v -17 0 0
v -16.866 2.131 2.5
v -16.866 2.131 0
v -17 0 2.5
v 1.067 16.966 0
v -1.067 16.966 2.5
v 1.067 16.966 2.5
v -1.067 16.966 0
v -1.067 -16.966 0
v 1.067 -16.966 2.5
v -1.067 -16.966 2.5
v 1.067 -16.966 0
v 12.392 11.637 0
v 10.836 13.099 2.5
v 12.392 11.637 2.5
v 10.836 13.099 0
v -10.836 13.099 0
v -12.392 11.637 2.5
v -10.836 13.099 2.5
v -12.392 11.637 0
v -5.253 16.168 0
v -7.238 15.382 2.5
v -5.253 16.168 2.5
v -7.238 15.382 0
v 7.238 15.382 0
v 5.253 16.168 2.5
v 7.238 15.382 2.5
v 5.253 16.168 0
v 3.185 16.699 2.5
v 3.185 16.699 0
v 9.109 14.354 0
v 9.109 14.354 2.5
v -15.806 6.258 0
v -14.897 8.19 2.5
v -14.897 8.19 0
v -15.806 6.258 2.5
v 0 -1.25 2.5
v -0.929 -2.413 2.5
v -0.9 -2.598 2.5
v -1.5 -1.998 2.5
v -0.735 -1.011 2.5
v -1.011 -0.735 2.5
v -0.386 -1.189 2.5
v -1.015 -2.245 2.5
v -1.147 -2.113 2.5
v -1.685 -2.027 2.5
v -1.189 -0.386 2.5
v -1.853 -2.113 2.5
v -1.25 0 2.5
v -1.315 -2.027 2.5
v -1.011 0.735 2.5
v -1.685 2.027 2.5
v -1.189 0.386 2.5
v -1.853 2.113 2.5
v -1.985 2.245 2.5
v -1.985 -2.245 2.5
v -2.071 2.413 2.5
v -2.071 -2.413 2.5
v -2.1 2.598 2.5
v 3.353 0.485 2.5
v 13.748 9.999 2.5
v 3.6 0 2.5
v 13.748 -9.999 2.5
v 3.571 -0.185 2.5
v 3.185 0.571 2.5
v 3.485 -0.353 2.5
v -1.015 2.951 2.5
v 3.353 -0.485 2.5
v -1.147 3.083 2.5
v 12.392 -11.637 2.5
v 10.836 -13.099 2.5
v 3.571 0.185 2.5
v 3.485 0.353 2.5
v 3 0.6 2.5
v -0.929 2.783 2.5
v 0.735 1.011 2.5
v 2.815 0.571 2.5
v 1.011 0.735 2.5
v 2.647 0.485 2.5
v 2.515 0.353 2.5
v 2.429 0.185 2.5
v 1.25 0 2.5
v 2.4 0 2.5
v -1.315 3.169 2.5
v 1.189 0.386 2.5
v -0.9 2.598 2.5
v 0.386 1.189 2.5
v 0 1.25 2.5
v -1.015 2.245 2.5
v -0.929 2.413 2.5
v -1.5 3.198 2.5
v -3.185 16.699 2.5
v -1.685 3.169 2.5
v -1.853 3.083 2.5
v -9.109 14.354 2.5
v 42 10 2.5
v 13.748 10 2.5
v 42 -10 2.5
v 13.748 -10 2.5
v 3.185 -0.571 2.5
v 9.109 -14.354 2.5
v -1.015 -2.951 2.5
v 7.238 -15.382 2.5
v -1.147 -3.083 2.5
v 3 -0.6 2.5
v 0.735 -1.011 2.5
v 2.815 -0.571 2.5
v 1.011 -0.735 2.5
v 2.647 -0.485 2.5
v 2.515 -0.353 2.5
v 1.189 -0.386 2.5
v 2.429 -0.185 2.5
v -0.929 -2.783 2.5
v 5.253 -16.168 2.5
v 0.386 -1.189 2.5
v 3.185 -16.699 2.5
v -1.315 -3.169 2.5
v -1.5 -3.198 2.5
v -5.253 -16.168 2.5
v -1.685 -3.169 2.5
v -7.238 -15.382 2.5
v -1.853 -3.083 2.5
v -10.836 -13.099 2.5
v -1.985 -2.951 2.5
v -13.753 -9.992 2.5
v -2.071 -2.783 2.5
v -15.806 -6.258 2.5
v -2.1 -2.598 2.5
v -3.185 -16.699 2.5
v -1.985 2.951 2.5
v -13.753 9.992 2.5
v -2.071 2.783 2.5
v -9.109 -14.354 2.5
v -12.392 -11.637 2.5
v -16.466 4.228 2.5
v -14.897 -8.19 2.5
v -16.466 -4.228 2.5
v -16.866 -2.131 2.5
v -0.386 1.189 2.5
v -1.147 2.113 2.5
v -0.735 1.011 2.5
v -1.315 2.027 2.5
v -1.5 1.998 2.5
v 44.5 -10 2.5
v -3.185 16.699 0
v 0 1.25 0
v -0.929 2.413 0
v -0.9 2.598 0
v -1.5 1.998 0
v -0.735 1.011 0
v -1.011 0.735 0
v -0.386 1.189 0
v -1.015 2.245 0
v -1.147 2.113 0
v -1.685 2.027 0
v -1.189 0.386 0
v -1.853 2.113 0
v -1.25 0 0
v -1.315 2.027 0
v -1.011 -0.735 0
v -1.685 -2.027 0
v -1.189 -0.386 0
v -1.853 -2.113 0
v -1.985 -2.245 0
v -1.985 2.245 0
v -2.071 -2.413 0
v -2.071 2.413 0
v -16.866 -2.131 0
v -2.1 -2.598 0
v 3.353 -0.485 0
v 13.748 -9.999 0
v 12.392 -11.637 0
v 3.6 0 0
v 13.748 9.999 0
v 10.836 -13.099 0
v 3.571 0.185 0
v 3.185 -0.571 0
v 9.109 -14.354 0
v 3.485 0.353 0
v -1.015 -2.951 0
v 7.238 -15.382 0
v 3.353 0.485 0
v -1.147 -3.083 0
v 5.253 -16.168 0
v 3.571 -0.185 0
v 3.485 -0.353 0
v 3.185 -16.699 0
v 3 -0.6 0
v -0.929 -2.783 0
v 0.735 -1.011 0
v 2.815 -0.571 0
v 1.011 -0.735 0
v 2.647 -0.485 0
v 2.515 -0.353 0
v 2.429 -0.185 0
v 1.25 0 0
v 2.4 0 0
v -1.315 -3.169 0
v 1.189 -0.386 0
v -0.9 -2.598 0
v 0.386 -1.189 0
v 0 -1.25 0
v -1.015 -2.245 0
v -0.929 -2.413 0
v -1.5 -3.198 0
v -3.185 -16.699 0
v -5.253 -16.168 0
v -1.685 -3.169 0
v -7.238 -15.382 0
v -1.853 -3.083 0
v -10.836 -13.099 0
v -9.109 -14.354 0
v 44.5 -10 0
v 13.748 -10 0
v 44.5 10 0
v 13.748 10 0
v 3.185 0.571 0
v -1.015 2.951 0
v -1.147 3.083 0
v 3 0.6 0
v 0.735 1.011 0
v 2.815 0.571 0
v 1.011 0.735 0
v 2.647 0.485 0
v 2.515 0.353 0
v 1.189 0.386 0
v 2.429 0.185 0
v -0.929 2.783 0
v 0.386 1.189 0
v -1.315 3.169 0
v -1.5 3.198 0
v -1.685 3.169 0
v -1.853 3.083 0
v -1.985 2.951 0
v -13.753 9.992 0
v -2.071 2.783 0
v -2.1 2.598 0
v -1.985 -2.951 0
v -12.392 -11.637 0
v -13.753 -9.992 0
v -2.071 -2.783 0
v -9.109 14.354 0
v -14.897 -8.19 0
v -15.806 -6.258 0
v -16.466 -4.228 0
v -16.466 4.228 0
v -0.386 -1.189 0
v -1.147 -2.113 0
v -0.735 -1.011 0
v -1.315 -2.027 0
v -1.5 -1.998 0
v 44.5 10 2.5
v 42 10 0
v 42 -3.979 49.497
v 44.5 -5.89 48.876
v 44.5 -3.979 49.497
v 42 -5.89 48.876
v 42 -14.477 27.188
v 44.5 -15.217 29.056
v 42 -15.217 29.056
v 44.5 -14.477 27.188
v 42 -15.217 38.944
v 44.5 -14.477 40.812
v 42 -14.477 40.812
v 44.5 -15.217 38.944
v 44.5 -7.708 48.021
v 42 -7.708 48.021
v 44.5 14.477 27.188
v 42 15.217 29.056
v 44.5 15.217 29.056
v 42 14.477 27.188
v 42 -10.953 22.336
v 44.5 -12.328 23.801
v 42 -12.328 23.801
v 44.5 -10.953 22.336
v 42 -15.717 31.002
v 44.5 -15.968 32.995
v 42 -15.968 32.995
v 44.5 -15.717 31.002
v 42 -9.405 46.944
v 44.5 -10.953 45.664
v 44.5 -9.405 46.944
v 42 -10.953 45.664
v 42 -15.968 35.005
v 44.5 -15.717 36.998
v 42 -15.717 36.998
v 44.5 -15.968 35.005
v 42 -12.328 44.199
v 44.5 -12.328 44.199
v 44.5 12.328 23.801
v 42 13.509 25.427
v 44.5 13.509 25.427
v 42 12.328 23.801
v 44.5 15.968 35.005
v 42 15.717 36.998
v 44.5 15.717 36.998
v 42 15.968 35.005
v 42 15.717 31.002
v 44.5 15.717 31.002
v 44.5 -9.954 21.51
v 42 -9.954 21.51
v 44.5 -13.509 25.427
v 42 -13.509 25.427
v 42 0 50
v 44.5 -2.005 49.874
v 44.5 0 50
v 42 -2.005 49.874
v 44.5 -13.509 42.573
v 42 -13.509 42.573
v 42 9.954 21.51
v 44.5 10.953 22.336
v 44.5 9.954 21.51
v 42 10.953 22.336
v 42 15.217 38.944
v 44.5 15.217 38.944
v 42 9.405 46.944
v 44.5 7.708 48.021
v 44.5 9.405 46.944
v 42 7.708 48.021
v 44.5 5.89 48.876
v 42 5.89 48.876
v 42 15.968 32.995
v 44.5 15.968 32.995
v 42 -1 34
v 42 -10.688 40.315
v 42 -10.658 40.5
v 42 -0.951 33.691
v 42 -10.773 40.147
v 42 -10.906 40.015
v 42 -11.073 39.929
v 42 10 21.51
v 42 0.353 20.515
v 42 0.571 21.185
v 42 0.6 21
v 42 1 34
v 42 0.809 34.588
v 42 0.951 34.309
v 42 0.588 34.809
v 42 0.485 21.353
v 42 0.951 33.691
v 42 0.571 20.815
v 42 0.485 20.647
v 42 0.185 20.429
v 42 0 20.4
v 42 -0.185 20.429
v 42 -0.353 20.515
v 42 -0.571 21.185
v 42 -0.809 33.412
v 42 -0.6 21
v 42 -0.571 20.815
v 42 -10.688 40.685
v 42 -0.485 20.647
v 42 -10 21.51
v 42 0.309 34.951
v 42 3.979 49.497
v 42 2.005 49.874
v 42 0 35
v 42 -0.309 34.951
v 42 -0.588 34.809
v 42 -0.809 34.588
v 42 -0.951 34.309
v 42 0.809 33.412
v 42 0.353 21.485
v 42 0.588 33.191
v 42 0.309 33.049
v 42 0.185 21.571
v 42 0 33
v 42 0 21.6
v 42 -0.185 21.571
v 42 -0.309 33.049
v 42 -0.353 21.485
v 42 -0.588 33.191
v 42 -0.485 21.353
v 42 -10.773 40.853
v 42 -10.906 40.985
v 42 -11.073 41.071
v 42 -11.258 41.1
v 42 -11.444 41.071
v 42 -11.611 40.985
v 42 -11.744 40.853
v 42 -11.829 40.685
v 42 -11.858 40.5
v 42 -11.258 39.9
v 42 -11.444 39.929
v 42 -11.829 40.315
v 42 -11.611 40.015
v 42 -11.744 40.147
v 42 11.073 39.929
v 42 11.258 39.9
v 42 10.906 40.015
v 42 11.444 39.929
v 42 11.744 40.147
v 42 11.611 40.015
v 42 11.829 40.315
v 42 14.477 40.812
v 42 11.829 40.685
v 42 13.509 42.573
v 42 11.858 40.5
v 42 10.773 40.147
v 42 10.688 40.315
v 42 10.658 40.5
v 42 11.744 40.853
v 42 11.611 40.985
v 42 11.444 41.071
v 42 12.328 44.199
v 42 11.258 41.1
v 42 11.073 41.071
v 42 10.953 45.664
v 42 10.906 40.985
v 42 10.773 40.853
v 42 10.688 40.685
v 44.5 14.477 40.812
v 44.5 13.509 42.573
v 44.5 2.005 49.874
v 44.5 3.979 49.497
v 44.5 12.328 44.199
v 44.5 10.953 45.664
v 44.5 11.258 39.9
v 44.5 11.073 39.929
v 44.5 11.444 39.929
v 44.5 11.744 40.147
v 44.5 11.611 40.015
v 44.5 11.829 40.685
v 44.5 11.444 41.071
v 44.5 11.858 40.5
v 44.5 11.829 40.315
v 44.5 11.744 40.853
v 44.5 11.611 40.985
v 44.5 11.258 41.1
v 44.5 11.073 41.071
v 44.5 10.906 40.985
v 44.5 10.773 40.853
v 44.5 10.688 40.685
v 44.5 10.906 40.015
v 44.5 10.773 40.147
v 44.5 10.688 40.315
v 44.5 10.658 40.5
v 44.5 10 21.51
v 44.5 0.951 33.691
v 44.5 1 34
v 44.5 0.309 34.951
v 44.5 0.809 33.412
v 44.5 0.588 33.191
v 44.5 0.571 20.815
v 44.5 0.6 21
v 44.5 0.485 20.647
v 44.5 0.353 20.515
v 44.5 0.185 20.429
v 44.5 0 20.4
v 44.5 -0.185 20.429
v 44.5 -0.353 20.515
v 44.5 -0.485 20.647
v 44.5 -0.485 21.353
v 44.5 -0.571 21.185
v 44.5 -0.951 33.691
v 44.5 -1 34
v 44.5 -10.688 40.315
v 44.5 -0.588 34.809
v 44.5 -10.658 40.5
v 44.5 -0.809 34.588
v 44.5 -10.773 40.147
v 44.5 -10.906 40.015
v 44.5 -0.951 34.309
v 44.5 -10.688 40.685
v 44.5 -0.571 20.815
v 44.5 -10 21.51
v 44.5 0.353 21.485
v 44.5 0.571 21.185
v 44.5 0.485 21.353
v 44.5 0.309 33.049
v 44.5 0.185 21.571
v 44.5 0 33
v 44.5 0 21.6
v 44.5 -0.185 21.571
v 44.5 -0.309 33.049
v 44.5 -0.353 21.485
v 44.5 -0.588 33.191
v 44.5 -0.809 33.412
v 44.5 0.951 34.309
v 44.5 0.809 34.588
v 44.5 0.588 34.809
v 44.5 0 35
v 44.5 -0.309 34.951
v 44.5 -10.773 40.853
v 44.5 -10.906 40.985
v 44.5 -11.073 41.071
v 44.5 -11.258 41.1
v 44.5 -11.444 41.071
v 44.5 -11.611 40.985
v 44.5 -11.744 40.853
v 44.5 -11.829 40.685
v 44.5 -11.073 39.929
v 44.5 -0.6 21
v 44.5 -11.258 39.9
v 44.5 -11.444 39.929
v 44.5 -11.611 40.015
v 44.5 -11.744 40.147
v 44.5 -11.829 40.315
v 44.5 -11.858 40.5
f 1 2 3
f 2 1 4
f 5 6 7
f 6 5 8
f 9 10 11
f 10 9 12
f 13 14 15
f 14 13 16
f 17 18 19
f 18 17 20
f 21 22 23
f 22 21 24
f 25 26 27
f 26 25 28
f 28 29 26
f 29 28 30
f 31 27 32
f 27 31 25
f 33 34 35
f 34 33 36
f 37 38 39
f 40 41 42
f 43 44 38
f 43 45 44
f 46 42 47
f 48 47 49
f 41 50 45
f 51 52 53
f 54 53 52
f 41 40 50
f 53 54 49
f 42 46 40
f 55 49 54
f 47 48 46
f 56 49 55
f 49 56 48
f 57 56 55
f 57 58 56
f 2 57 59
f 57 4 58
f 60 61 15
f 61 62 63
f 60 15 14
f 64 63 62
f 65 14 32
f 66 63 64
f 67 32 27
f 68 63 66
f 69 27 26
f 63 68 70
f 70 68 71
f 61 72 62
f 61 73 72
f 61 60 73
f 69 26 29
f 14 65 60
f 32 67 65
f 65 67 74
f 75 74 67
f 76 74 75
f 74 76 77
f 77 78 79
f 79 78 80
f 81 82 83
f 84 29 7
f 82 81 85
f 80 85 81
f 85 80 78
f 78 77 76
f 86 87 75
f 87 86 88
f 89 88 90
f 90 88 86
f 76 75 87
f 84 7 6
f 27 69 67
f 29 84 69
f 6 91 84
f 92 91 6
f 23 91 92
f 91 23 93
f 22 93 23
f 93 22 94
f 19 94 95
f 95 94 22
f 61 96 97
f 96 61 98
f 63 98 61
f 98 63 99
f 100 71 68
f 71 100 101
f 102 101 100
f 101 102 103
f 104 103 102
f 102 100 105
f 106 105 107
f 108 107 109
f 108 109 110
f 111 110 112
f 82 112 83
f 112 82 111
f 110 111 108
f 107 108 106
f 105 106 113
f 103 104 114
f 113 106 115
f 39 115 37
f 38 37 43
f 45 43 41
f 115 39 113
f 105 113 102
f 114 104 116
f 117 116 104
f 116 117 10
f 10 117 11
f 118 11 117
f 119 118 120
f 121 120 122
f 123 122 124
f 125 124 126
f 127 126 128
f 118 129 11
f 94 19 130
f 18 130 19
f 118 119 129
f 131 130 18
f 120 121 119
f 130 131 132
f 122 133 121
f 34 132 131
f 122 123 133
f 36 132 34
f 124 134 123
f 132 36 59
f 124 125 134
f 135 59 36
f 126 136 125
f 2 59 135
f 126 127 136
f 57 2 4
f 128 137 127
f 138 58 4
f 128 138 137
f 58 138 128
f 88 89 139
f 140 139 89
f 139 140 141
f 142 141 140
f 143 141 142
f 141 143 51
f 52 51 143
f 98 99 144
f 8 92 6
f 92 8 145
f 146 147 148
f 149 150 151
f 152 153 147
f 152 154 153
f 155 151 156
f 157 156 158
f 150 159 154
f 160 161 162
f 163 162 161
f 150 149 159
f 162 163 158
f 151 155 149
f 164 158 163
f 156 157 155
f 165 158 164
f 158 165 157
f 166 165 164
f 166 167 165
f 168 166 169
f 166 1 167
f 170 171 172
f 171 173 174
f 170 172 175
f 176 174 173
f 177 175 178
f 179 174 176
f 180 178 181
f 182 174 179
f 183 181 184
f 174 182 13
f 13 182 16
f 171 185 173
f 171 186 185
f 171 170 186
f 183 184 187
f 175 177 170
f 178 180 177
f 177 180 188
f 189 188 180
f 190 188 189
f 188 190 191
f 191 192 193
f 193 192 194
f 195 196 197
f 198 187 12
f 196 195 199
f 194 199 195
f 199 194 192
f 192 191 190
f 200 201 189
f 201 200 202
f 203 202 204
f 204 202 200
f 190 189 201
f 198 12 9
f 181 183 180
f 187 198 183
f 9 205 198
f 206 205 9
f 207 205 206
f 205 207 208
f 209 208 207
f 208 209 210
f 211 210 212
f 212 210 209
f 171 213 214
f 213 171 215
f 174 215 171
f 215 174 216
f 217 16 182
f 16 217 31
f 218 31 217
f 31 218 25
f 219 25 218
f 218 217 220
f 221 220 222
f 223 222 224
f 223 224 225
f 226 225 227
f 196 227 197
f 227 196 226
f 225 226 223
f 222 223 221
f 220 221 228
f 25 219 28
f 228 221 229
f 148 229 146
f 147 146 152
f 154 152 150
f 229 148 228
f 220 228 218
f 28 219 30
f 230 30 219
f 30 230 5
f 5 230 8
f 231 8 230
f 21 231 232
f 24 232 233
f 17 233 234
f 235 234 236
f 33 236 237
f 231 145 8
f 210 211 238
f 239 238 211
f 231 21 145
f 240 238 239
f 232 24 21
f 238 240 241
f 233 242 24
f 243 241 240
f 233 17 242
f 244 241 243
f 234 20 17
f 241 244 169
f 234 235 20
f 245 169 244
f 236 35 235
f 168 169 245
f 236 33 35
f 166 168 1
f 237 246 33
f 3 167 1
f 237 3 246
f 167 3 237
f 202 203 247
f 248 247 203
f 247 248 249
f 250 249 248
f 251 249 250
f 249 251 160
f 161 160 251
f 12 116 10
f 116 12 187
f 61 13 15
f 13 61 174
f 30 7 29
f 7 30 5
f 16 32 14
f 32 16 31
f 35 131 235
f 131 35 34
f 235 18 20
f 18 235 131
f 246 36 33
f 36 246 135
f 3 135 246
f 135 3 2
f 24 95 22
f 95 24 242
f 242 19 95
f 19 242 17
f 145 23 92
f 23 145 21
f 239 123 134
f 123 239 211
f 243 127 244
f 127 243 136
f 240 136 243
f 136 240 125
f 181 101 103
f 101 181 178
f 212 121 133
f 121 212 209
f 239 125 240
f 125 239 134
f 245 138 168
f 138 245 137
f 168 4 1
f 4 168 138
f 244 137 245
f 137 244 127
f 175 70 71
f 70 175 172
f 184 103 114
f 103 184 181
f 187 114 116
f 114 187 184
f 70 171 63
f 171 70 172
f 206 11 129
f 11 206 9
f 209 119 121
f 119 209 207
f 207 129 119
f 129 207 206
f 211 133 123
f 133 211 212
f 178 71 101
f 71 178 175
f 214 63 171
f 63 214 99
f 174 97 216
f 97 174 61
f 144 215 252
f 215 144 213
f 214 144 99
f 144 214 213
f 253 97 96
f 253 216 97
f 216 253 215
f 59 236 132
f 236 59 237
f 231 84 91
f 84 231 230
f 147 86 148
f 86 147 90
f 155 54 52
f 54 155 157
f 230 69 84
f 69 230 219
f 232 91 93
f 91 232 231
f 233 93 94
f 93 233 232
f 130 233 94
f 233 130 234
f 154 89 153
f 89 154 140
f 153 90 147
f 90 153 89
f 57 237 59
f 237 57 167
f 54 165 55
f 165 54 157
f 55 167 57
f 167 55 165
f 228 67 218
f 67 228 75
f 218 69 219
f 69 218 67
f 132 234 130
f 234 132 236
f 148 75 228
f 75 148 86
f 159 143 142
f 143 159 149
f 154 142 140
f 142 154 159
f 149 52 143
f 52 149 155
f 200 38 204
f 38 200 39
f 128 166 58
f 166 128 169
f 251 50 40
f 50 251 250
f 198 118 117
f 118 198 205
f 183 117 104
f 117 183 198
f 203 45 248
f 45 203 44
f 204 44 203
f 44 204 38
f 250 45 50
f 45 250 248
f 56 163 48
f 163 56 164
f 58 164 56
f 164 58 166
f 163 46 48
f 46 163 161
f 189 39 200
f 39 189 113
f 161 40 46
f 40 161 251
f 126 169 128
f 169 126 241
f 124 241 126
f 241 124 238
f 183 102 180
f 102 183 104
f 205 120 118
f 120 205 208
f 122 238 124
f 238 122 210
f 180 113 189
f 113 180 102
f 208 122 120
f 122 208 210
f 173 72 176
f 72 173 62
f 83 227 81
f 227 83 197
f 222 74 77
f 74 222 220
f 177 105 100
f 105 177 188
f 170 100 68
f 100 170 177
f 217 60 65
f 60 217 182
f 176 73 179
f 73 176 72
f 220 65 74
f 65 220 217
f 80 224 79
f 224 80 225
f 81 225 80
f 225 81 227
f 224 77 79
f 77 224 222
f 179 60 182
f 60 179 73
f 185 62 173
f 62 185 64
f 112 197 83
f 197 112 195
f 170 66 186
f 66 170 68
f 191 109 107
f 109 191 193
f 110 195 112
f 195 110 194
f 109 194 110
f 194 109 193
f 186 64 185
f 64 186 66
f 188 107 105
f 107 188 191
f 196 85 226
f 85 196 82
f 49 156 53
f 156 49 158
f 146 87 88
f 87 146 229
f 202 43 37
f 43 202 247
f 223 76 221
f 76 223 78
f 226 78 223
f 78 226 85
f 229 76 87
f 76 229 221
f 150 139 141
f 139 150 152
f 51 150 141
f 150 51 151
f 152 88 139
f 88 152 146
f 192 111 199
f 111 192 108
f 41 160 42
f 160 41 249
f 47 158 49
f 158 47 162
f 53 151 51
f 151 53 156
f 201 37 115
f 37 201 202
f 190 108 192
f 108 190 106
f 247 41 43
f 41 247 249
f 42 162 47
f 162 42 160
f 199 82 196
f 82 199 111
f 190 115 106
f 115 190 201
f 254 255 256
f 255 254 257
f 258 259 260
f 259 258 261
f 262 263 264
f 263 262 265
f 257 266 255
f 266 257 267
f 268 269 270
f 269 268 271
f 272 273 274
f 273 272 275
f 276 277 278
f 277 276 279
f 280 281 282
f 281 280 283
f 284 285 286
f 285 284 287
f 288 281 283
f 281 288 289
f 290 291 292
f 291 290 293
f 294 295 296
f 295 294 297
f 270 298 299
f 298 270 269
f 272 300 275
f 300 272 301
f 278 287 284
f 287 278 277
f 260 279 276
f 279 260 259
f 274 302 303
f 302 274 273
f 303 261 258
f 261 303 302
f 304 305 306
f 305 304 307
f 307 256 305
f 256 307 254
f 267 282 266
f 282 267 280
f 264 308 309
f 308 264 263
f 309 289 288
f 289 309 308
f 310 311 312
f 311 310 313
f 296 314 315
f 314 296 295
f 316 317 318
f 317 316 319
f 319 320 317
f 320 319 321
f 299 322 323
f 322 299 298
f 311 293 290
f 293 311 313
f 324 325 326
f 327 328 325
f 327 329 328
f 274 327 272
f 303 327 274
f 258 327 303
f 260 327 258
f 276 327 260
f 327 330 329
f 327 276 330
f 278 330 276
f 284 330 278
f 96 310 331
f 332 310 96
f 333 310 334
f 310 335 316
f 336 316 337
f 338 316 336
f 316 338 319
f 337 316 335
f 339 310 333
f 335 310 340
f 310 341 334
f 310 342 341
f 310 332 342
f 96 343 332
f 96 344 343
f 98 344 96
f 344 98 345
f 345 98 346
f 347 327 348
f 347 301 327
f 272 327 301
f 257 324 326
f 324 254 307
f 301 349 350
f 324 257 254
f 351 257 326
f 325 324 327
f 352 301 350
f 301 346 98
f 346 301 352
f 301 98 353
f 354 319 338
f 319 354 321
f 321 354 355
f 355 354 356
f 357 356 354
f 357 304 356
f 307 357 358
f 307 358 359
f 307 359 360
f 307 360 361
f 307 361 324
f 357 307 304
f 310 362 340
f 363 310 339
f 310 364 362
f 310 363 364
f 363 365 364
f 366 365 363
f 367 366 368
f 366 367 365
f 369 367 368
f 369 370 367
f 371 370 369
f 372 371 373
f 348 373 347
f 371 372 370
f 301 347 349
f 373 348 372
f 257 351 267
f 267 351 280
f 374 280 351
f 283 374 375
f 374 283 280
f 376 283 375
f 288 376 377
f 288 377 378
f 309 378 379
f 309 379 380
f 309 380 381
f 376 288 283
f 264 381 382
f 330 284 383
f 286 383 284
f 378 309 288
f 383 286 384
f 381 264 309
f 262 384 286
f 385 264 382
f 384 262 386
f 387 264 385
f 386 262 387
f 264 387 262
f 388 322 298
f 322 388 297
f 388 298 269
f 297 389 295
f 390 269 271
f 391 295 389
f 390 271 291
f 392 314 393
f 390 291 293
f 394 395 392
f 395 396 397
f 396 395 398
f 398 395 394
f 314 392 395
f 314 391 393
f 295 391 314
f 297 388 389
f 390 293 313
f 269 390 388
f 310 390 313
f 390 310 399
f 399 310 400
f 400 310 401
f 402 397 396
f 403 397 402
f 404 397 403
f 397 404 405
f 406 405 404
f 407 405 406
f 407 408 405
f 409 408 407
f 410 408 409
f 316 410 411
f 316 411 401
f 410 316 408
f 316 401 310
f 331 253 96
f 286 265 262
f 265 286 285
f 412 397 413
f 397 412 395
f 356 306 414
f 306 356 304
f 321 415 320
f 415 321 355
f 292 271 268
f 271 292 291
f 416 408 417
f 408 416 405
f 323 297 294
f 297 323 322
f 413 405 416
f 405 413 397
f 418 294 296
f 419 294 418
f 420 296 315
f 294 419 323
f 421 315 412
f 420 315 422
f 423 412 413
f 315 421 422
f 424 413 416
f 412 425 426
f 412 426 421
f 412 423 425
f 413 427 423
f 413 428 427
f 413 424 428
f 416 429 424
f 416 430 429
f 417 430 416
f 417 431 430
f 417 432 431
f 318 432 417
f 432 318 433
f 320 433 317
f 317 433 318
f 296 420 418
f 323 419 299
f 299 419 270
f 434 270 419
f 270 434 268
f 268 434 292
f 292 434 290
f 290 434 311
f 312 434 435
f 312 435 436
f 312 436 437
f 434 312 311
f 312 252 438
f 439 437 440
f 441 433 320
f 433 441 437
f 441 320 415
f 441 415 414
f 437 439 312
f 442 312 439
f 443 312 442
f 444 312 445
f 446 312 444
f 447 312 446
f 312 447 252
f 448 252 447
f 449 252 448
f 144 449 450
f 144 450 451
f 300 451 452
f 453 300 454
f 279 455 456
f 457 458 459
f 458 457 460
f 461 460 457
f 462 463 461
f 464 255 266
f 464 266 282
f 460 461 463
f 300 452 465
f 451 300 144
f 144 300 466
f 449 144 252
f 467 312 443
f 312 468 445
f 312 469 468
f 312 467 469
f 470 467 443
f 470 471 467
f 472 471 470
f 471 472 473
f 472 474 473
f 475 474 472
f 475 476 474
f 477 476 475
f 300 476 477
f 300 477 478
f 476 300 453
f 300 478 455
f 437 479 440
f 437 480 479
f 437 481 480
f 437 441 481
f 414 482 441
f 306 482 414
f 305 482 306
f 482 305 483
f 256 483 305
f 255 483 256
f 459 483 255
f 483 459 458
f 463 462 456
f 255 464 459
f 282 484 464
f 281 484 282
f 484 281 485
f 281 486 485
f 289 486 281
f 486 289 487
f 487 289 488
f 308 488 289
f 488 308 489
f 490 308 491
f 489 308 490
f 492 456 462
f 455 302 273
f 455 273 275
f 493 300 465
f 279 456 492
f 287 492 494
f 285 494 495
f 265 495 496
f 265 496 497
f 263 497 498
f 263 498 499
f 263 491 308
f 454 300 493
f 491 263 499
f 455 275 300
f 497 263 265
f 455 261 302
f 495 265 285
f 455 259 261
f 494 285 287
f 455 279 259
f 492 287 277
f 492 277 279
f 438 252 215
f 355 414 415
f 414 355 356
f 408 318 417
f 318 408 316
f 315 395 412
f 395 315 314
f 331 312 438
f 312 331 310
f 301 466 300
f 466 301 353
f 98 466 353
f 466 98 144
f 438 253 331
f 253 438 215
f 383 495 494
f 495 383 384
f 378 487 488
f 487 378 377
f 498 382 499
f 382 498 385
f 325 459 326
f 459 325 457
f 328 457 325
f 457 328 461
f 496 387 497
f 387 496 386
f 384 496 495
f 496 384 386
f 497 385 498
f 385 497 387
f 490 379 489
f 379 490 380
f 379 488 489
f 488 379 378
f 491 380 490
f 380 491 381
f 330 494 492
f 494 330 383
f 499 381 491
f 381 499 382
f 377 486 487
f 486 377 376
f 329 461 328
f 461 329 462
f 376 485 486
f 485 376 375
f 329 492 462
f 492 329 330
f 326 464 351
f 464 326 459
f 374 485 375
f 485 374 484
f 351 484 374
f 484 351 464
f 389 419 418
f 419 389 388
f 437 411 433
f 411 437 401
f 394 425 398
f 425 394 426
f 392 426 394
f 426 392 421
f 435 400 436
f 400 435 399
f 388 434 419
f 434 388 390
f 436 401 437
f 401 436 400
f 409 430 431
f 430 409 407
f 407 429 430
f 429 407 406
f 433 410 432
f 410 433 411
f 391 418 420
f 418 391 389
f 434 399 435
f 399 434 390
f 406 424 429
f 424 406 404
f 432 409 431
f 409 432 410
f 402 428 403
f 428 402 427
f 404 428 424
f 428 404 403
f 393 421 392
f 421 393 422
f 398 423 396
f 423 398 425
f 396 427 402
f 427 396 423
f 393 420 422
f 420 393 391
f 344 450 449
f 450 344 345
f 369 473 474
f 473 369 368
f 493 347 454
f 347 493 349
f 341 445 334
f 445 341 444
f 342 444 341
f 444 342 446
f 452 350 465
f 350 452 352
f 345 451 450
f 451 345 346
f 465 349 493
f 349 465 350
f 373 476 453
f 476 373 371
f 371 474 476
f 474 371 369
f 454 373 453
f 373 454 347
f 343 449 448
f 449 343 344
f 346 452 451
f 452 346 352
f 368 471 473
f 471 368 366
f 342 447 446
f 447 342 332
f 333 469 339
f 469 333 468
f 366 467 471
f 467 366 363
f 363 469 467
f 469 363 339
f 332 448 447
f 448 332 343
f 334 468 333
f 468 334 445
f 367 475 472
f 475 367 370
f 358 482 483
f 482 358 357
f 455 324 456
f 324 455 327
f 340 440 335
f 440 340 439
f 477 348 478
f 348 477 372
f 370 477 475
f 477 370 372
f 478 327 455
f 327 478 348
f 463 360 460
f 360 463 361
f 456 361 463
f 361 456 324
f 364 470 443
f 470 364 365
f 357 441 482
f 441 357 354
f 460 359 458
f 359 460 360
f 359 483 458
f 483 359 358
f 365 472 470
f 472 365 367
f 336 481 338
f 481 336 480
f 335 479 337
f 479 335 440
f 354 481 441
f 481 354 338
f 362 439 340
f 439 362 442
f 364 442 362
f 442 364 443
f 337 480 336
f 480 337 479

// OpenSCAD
module mounting_holes(
    num_holes,
    hole_location_radius,
    hole_diam,
    thickness
)
{
    $fn = 20;
    for(i = [1 : num_holes]) {
        translate([
            hole_location_radius * cos(i * (360 / num_holes)),
            hole_location_radius * sin(i * (360 / num_holes)),
            0
        ])
        cylinder(r = hole_diam / 2.0, h = thickness);
    }
};

module wire_header_cutout()
{
 // TODO
}

module central_hole_cutout(diam, thickness)
{
    $fn = 20;
    cylinder(r = diam /2, h = thickness);
}

module mounting_surface(diam, thickness)
{
    $fn = 50;
    cylinder(r = diam / 2, h = thickness);
}

module mounting_plate(
    plate_diam,
    thickness,
    hole_location_radius,
    hole_diam,
    num_holes,
    central_hole_diam,
    arm_width,
    arm_length
)
{
    r = plate_diam / 2;
    sagitta = r - sqrt(pow(r, 2) - pow(arm_width /2, 2));
    difference()  {
        union() {
            mounting_surface(plate_diam, thickness);
            translate([r - sagitta, -arm_width/2, 0])
            cube([sagitta + arm_length, arm_width, thickness]);
        }
        mounting_holes(num_holes, hole_location_radius, hole_diam, thickness);
        central_hole_cutout(central_hole_diam, thickness);
    }
}

module roll_bracket()
{
    back_plate_diam = 34;
    front_plate_diam = 32;
    thickness = 2.5;
    hole_diam = 1.2;
    num_holes = 3.0;
    arm_width = 20;
    roll_motor_mount_holes_radius = 3;
    roll_motor_mount_central_hole = 2.5;
    roll_motor_arm_length = 10.0 + 15 + thickness;
    pitch_motor_mount_holes_radius = 13;
    pitch_motor_mount_central_hole = 2.0;
    pitch_motor_arm_length = 18;

    union() {
        //roll motor mount
        mounting_plate(
            back_plate_diam,
            thickness,
            roll_motor_mount_holes_radius,
            hole_diam,
            num_holes,
            roll_motor_mount_central_hole,
            arm_width,
            roll_motor_arm_length
        );
        translate([
            roll_motor_arm_length + back_plate_diam / 2,
            0,
            pitch_motor_arm_length + front_plate_diam / 2
        ])
        rotate([0, 90, 180])
        mounting_plate(
            front_plate_diam,
            thickness,
            pitch_motor_mount_holes_radius,
            hole_diam,
            num_holes,
            pitch_motor_mount_central_hole,
            arm_width,
            pitch_motor_arm_length
        );
   }
}


// run
roll_bracket();
